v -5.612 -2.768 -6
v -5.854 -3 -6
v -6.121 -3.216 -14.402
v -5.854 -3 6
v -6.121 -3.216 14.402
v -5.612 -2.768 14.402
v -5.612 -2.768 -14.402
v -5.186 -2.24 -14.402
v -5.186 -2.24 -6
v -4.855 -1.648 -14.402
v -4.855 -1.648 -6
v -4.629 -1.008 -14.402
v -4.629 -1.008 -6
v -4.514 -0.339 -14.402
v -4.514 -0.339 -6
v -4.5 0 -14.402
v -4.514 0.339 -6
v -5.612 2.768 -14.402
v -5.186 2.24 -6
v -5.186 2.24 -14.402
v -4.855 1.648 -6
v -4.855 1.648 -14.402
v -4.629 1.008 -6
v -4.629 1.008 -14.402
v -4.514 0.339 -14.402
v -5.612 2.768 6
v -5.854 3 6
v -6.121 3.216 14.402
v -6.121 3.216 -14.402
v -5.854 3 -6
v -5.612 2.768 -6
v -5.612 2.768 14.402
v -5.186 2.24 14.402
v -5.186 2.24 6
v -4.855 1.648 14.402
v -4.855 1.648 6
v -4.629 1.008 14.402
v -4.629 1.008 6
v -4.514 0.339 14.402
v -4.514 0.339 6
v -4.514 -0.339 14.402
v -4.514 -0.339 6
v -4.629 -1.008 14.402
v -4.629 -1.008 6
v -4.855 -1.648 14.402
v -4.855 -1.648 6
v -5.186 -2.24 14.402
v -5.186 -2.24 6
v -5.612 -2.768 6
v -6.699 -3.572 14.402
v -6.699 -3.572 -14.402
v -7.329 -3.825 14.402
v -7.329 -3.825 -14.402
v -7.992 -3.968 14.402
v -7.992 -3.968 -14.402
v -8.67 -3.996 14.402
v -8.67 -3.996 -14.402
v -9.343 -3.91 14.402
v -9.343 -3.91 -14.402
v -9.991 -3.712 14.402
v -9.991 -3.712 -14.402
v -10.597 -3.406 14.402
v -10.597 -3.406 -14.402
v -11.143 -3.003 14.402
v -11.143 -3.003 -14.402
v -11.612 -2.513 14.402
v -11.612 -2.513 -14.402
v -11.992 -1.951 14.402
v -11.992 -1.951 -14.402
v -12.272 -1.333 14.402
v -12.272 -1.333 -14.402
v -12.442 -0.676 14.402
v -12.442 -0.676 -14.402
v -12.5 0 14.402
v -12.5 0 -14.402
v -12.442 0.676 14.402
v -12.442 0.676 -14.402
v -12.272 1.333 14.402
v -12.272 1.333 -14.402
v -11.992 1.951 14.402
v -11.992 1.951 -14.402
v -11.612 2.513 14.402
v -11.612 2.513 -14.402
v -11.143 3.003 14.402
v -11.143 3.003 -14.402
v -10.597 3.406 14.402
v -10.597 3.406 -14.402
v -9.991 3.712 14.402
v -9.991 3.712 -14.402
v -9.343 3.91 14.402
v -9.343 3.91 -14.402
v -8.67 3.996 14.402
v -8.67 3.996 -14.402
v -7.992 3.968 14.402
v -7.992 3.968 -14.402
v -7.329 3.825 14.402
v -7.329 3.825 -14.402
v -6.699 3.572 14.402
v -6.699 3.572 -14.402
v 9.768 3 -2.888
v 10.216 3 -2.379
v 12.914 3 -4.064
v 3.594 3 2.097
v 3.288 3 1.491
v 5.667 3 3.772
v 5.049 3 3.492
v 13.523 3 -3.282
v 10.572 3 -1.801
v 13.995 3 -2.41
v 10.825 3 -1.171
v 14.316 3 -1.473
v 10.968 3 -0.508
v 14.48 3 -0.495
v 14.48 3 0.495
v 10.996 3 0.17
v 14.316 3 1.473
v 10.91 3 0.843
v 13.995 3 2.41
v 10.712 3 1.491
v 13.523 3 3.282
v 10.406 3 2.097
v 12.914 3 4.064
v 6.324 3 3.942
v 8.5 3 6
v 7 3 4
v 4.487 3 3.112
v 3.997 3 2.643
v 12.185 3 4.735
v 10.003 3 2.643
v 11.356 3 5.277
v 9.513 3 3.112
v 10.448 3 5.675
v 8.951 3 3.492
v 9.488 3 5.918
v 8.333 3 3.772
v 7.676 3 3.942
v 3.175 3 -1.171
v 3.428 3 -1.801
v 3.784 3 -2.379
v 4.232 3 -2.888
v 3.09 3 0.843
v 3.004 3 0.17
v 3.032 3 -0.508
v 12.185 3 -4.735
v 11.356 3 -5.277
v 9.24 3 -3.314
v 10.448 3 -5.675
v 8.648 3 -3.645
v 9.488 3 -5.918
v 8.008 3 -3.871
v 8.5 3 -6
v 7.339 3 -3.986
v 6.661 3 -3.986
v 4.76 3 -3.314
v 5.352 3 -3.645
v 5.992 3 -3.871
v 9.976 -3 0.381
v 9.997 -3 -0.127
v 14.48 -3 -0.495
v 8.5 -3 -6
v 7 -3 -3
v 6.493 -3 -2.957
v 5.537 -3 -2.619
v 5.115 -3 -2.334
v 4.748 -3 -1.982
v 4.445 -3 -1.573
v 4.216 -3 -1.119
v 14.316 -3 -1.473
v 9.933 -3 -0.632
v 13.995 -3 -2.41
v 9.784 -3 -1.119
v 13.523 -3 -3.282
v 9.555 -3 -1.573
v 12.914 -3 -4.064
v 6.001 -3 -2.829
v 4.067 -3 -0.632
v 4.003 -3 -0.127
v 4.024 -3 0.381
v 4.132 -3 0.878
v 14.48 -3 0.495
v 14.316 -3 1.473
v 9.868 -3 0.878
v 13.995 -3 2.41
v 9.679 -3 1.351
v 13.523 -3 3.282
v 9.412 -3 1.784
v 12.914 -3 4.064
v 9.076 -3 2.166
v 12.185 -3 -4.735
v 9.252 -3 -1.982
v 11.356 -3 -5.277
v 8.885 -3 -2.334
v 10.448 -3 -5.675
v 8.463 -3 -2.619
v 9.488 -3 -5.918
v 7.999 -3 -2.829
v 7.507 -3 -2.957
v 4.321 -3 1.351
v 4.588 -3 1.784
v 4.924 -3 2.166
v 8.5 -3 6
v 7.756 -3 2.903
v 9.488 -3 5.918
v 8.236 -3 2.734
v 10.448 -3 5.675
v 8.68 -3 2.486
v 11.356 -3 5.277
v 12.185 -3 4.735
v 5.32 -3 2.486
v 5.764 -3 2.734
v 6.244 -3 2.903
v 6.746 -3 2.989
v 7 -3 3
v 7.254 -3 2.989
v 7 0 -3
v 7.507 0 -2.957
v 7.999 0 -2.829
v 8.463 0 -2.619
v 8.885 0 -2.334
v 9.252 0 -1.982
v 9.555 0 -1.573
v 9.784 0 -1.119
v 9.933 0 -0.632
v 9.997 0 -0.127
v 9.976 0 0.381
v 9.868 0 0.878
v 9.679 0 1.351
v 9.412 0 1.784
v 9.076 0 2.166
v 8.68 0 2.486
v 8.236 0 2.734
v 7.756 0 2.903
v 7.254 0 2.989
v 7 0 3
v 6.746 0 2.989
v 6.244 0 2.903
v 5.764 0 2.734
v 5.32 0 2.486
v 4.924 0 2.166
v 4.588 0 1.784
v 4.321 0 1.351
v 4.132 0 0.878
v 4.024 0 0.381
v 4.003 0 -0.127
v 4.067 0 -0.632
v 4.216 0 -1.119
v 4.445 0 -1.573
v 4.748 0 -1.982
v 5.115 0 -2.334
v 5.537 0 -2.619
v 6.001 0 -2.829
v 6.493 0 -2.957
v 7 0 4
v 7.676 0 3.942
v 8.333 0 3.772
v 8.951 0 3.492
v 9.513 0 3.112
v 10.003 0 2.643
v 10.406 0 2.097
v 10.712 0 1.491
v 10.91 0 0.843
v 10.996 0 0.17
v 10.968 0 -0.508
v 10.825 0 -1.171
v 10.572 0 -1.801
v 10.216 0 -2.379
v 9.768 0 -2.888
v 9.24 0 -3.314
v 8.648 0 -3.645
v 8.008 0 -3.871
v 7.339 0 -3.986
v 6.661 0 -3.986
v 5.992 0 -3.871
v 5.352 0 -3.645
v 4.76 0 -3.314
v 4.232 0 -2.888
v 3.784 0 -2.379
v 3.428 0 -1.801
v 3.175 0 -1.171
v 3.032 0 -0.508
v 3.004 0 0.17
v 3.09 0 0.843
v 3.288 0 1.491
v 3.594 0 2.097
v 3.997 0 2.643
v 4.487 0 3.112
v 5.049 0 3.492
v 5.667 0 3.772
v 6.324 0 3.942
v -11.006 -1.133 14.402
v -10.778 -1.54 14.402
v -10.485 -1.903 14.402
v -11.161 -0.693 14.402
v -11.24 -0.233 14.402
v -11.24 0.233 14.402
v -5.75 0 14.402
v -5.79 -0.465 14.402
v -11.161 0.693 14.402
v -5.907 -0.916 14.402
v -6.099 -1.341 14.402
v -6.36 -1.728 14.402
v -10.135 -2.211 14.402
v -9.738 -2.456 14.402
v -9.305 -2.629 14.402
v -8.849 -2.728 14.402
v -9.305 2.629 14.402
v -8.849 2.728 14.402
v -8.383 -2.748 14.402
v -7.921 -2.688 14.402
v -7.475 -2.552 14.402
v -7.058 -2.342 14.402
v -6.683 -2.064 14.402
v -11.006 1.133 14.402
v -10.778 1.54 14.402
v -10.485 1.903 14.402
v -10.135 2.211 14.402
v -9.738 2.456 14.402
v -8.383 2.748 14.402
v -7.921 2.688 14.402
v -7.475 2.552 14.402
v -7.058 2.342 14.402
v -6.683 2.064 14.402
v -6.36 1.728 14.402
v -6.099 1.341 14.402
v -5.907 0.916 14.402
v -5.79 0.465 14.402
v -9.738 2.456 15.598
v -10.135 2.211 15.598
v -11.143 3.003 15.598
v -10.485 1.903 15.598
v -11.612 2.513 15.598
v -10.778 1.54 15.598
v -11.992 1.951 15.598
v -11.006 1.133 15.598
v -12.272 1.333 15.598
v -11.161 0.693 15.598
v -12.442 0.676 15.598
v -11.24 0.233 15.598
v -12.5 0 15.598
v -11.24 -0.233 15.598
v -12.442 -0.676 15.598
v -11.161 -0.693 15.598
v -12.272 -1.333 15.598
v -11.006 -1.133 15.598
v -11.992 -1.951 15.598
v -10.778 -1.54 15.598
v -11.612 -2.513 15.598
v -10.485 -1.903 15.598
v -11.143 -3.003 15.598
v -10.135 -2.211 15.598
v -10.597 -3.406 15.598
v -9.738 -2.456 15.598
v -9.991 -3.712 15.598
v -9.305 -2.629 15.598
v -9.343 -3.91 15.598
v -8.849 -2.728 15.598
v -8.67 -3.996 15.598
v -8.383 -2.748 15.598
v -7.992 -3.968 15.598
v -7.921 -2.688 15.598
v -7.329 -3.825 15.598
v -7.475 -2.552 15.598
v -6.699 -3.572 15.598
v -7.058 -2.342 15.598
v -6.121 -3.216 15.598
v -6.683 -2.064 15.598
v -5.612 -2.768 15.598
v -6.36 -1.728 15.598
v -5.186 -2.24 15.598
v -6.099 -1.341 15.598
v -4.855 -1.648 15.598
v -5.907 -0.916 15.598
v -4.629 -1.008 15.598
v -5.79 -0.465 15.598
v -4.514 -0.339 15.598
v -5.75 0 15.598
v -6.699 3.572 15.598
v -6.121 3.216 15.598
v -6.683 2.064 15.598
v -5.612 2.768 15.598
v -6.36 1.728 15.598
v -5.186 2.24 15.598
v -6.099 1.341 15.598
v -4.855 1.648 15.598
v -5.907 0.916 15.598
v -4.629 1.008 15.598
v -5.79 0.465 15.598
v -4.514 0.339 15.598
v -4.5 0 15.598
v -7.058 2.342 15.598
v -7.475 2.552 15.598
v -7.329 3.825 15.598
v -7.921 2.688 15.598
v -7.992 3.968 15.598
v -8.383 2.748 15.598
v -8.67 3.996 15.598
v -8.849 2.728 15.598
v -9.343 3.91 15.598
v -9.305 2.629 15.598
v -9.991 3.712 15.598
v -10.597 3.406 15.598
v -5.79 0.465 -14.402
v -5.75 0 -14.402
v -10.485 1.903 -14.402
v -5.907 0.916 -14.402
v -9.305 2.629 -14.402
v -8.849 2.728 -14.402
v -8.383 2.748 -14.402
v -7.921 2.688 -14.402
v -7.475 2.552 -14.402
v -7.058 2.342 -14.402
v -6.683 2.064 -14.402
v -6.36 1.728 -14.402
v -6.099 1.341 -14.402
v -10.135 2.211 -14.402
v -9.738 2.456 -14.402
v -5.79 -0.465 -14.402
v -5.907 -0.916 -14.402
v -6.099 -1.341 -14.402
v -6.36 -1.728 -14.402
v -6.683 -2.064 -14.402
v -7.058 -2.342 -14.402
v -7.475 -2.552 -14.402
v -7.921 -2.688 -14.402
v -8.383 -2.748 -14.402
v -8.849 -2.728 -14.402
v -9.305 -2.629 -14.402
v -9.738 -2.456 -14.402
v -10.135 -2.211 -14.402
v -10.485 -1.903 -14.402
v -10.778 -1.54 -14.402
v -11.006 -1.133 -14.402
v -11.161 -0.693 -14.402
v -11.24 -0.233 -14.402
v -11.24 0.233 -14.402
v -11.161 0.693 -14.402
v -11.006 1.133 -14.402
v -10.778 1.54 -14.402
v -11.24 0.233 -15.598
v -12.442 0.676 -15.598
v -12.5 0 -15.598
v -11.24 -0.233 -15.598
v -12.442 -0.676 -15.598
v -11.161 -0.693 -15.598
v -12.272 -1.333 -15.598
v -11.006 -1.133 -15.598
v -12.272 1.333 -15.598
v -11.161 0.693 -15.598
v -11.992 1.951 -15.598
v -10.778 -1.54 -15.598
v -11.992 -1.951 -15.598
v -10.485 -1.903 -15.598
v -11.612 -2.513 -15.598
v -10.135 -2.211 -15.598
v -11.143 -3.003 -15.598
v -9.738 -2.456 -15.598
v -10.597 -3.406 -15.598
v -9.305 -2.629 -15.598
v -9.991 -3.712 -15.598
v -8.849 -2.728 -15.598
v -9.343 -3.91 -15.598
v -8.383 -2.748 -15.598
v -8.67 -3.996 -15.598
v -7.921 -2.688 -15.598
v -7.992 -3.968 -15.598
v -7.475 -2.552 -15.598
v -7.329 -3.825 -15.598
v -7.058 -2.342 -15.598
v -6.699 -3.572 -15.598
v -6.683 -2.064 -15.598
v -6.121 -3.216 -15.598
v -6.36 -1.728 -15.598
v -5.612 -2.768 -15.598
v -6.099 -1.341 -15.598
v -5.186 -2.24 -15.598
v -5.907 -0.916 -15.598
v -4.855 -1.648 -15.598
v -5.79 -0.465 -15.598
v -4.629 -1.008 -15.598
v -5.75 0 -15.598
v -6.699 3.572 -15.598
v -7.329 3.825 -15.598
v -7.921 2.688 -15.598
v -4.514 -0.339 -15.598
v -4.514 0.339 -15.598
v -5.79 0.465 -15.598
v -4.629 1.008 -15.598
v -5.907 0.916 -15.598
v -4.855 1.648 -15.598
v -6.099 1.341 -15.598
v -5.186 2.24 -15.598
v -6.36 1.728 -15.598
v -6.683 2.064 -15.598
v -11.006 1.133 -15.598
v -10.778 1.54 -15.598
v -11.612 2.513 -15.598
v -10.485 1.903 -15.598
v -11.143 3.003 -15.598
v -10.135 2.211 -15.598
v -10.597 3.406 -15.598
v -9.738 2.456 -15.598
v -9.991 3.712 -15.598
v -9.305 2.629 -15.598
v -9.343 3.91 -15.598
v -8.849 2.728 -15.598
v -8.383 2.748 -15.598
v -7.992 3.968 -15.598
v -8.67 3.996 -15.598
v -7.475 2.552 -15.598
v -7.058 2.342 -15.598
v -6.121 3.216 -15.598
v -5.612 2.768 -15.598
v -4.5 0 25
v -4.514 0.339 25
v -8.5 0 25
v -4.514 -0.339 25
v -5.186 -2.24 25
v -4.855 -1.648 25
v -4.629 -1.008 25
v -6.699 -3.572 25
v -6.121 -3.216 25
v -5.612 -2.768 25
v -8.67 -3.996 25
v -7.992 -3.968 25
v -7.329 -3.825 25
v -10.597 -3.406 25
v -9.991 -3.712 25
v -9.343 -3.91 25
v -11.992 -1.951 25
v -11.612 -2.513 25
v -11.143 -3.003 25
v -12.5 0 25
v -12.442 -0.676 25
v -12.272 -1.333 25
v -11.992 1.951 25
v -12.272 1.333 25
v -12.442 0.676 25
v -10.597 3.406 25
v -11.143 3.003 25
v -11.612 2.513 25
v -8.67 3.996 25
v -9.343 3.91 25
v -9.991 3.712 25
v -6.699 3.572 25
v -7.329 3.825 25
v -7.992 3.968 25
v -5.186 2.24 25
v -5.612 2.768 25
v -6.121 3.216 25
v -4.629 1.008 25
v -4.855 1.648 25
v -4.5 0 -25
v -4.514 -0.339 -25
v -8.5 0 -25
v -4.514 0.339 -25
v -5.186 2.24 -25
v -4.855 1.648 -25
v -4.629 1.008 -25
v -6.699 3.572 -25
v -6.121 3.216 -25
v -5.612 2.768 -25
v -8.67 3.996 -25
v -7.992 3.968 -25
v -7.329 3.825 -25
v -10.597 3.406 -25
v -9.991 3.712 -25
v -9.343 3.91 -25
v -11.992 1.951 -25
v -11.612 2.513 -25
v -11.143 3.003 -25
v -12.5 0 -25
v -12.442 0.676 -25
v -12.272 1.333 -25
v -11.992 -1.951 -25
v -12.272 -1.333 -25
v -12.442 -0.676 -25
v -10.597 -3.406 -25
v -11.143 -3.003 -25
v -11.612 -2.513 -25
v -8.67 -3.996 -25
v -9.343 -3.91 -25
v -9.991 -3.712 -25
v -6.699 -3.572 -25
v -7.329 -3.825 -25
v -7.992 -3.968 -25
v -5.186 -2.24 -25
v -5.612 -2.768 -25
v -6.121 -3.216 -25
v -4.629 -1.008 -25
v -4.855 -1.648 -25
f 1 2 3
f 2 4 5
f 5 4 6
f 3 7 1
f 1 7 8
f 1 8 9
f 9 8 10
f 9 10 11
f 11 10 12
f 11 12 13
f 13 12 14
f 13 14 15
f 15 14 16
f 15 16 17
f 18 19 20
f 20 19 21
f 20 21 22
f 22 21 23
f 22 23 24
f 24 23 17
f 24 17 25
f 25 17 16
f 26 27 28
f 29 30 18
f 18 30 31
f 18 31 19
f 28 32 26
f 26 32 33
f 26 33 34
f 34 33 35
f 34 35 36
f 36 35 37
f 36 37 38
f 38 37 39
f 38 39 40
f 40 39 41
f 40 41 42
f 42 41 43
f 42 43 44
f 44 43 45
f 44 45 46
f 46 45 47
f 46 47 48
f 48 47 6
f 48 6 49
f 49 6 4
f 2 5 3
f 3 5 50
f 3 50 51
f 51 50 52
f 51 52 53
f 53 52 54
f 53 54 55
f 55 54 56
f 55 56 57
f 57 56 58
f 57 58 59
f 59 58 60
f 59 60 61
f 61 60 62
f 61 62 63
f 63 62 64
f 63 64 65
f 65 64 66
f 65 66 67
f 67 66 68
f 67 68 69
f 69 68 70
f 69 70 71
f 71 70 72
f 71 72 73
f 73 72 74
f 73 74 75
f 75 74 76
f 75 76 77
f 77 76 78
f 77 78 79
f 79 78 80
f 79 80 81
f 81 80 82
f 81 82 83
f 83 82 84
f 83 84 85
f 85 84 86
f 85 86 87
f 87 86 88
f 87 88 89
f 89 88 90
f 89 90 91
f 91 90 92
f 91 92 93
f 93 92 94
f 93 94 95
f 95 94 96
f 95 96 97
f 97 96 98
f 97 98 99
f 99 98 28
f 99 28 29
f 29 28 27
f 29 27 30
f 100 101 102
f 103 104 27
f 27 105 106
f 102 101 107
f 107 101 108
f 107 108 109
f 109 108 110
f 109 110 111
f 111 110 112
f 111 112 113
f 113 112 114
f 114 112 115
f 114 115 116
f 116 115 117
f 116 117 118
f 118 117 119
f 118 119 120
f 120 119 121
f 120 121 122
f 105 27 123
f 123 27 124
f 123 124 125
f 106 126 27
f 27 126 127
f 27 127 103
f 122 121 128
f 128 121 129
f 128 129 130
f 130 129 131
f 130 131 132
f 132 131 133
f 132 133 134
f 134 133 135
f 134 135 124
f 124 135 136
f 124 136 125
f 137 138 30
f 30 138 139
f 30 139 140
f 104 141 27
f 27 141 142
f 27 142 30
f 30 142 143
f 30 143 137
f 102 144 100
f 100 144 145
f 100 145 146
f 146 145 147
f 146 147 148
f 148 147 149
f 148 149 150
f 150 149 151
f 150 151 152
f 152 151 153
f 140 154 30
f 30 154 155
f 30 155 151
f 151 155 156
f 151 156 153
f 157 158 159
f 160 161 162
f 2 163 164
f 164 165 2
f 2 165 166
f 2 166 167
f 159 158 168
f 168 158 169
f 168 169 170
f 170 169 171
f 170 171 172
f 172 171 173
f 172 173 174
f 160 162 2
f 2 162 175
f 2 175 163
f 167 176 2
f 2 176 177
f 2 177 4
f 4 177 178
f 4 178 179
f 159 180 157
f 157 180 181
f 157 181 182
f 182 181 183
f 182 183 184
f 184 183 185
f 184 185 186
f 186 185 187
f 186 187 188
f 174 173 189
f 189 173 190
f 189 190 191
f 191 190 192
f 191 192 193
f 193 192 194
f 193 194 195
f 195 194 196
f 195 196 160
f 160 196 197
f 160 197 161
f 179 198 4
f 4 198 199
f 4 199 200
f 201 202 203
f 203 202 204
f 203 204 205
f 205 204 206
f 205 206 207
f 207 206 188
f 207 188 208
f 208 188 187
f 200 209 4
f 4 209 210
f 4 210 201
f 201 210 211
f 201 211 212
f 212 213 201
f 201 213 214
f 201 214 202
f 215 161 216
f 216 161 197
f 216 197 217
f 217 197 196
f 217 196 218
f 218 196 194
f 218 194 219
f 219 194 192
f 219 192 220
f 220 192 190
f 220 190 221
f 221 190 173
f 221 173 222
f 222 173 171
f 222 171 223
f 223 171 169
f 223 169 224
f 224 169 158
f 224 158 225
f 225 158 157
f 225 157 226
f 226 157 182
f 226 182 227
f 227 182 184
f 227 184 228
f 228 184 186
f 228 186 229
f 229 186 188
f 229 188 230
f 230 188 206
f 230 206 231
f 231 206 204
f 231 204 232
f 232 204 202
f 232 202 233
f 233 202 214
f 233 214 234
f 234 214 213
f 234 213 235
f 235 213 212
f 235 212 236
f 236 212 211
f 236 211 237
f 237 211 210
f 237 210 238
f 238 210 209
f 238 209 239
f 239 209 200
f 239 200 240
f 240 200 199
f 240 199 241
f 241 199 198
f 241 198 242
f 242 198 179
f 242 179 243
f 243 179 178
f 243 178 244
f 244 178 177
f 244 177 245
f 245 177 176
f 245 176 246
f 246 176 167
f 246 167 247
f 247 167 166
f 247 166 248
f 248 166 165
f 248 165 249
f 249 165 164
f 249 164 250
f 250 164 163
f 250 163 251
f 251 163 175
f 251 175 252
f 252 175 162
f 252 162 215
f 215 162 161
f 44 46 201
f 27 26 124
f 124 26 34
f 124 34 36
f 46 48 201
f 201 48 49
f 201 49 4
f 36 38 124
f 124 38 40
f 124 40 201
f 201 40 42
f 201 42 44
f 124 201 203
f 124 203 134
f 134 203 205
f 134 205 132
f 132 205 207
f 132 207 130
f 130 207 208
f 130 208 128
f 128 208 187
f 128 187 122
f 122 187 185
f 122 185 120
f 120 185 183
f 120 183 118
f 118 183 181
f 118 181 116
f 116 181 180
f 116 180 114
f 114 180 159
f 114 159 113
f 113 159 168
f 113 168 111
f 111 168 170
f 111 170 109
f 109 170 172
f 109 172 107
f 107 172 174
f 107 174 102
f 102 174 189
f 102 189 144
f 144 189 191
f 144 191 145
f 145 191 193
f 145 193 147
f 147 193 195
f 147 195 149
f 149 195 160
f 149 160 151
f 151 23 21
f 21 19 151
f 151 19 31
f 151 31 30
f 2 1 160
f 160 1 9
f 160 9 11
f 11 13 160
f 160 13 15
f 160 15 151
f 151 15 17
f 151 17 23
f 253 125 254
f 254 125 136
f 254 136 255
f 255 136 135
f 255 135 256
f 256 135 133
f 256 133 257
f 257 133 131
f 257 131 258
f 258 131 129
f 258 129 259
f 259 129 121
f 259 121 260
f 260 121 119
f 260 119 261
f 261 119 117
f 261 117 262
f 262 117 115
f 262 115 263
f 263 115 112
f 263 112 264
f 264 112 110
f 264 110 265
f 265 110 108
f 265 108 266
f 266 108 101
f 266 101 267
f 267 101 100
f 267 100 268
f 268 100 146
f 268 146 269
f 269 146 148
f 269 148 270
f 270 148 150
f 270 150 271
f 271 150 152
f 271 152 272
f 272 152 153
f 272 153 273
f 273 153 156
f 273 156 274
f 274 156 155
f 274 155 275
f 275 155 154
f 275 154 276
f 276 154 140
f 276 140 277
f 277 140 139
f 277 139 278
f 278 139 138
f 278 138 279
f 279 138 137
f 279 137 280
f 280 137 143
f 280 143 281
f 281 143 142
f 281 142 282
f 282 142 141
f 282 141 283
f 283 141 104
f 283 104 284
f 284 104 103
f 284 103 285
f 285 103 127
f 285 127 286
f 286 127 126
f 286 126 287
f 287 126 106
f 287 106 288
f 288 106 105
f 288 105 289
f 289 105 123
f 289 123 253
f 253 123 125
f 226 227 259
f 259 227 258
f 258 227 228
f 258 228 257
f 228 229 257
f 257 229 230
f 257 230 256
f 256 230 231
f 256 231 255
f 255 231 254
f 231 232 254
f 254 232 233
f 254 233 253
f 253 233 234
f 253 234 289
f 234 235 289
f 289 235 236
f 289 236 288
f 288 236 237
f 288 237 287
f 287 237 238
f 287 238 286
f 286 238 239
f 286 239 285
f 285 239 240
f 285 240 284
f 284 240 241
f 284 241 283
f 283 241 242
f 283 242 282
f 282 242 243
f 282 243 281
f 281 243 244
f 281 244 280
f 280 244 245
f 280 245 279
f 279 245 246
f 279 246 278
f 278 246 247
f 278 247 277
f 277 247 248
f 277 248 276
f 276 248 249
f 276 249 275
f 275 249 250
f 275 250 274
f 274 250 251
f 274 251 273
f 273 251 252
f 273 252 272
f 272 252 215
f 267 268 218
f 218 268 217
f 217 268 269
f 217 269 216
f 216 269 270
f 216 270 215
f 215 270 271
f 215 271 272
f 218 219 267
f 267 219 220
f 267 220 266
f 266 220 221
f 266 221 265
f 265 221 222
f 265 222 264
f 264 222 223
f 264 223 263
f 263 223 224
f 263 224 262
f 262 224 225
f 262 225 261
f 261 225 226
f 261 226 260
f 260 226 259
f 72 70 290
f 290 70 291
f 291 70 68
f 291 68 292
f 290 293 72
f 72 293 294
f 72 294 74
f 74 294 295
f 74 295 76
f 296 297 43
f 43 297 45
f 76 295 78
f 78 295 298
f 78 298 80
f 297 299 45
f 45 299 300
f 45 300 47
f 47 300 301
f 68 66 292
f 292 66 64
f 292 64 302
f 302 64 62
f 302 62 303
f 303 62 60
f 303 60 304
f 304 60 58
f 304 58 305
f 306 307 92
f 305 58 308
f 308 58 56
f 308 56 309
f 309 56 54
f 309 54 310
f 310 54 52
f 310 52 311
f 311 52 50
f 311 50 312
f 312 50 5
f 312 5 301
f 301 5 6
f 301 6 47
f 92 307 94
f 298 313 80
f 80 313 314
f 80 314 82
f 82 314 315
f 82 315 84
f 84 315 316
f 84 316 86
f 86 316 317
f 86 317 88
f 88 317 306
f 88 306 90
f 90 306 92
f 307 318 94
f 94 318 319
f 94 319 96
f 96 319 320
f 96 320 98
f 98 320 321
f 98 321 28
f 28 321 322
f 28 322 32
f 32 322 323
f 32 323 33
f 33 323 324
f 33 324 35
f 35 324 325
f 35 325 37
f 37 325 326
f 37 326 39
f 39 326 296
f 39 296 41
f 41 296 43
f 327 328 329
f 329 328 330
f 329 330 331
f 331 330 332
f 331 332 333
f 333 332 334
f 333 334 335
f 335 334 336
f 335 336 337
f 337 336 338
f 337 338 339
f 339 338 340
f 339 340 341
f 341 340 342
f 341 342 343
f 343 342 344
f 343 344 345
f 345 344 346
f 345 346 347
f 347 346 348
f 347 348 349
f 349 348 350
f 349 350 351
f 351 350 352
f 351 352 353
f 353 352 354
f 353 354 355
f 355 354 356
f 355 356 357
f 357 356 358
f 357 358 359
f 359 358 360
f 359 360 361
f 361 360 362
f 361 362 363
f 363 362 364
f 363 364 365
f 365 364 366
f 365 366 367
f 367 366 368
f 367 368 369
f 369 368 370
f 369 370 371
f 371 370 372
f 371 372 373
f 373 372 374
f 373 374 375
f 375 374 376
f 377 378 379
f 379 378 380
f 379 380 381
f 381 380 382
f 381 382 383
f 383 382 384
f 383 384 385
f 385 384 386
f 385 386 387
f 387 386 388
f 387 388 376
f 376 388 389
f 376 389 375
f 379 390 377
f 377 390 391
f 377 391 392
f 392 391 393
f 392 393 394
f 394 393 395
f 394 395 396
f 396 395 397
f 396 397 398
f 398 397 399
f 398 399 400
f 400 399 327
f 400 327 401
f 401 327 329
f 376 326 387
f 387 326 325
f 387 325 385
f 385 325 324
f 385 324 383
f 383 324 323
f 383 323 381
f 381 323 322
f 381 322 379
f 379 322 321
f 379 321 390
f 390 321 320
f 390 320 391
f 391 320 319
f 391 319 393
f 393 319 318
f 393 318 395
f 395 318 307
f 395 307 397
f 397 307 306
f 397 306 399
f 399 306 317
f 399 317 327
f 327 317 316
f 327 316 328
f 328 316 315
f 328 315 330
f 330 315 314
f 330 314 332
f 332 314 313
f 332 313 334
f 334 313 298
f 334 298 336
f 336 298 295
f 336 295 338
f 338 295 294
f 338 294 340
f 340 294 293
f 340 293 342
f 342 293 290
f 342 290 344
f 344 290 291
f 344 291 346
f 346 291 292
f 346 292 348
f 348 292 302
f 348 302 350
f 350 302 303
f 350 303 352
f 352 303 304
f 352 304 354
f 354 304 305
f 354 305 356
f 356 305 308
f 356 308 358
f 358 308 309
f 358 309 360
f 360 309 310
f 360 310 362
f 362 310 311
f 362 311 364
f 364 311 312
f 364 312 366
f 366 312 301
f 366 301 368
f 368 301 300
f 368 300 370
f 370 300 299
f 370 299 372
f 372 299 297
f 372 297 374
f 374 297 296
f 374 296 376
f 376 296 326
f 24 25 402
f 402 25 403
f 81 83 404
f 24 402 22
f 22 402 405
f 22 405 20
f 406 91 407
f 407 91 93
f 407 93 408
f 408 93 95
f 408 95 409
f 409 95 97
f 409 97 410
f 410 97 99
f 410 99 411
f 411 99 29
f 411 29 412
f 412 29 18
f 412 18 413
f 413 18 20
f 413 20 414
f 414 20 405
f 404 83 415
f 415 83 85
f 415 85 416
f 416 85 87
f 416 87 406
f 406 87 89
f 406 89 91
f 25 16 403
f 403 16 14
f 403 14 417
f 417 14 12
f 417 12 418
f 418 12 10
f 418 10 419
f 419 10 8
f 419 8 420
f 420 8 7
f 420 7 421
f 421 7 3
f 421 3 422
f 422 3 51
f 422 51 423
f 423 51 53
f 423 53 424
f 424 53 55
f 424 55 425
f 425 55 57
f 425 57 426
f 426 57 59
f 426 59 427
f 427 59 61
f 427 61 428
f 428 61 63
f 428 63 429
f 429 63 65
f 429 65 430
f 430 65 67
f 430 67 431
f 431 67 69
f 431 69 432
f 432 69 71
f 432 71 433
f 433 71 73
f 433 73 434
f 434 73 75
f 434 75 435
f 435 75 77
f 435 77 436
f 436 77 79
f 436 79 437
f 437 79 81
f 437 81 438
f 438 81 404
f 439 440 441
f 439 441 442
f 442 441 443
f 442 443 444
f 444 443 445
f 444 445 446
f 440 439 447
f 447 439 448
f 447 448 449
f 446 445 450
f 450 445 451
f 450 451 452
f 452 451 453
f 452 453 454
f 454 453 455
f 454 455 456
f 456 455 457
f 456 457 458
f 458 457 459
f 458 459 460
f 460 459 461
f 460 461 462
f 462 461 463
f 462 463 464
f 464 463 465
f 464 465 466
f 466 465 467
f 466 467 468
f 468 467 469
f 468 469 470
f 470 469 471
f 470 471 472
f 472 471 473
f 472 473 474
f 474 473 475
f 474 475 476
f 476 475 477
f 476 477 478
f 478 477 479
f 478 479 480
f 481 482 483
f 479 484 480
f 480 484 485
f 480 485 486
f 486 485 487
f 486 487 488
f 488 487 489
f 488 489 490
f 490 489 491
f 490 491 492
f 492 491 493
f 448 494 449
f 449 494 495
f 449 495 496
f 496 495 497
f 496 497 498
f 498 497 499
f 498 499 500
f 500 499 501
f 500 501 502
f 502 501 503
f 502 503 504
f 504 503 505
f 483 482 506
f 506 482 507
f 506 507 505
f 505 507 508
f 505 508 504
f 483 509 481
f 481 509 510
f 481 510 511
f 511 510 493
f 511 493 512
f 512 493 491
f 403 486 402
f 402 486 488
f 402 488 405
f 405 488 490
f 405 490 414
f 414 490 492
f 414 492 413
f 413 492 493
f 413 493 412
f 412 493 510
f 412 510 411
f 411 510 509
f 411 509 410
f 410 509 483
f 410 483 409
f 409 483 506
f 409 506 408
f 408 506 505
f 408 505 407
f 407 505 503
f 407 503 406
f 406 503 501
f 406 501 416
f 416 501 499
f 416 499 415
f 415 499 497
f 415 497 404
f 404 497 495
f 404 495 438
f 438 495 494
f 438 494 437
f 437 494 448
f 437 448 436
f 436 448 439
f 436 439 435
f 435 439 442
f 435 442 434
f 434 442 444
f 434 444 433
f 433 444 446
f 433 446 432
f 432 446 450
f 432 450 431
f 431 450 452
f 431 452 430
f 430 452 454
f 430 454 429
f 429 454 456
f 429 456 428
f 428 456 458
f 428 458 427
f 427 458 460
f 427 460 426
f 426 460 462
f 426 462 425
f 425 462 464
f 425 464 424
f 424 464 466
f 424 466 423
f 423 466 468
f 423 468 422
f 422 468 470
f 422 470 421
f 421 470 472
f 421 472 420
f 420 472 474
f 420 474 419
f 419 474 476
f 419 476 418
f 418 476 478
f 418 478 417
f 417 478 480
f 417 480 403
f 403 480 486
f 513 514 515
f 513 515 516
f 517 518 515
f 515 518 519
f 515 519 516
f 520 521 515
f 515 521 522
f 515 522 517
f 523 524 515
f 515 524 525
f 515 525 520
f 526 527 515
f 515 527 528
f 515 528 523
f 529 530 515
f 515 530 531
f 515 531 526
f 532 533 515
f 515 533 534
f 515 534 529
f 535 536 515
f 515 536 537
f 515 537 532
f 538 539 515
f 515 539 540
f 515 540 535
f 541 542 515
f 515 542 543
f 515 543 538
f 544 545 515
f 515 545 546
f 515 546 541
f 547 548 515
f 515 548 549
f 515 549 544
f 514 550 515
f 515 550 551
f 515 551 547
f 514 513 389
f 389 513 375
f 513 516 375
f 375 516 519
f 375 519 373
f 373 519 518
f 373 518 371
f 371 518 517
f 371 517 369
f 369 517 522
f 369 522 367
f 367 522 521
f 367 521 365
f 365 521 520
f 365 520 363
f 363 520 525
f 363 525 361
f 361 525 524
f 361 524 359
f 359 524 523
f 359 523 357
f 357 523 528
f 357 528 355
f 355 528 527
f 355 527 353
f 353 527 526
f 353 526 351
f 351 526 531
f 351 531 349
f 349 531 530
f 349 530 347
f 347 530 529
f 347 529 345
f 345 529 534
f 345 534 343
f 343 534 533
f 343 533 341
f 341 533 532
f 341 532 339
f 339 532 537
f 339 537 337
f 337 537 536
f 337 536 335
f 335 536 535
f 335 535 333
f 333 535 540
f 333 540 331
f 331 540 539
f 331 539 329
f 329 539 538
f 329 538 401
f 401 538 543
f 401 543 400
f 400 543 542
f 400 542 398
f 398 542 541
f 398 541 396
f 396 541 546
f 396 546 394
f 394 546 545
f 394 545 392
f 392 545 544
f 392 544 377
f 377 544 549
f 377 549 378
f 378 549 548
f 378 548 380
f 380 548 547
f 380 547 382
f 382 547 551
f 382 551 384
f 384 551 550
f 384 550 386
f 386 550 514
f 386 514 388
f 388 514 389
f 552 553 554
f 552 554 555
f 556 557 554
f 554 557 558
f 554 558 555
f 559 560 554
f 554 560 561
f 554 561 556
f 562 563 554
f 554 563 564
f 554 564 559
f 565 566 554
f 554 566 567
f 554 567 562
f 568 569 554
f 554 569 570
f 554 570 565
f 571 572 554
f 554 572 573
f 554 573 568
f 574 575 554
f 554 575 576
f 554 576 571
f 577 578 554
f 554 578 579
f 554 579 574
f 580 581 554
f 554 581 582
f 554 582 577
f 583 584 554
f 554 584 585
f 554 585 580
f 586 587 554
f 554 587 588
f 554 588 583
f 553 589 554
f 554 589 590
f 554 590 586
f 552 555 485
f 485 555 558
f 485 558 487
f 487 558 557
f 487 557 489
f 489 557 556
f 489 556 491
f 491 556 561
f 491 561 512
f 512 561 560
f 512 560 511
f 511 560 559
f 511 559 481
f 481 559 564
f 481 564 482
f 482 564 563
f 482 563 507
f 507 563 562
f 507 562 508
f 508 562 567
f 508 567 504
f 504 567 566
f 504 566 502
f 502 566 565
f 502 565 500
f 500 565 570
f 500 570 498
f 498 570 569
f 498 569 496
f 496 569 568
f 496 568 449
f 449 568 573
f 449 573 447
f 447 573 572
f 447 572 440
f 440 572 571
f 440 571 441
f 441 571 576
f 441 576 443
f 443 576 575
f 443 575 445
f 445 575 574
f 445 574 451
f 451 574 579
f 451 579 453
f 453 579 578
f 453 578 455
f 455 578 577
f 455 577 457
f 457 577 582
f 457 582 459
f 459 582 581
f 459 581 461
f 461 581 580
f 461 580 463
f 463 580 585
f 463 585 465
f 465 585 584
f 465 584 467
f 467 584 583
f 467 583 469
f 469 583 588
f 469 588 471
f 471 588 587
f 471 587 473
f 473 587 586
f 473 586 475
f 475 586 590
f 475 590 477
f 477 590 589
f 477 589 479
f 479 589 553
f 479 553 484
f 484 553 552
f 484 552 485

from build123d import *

# Parameters (mm, degrees)
SKETCH3_R           = 3
BOSS_EXTRUDE1_DEPTH = 3
SKETCH4_R           = 4
CUT_EXTRUDE1_DEPTH  = 3
SKETCH6_R           = 4
BOSS_EXTRUDE2_DEPTH = 25
SKETCH7_W           = 2.5
SKETCH7_H           = 1.19510496


with BuildPart() as part:
    # Sketch3 → Boss-Extrude1 (new, symmetric)
    with BuildSketch(Plane(origin=(0, 0, 0), x_dir=(1, 0, 0), z_dir=(0, 1, 0))):
        with BuildLine():
            Line((8.5, -6), (-8.5, -6))
            Line((-8.5, -6), (-8.5, 6))
            Line((-8.5, 6), (8.5, 6))
            ThreePointArc((8.5, 6), (14.5, 0), (8.5, -6))
        make_face()
        with Locations(Location((7, 0, 0), (0, 0, 270))):
            Circle(SKETCH3_R, mode=Mode.SUBTRACT)
    extrude(amount=BOSS_EXTRUDE1_DEPTH, both=True)

    # Sketch4 → Cut-Extrude1 (cut)
    with BuildSketch(Plane(origin=(0, 3, 0), x_dir=(1, 0, 0), z_dir=(0, 1, 0))):
        with Locations(Location((7, 0, 0), (0, 0, 270))):
            Circle(SKETCH4_R)
    extrude(amount=-CUT_EXTRUDE1_DEPTH, mode=Mode.SUBTRACT)

    # Sketch6 → Boss-Extrude2 (add, symmetric)
    with BuildSketch(Plane.XY):
        with Locations((-8.5, 0)):
            Circle(SKETCH6_R)
    extrude(amount=BOSS_EXTRUDE2_DEPTH, both=True)

    # Sketch7 → Cut-Revolve1 (revolve, cut)
    with BuildSketch(Plane(origin=(0, 0, 0), x_dir=(1, 0, 0), z_dir=(0, 1, 0))):
        with Locations((-4.5, 15)):
            Rectangle(SKETCH7_W, SKETCH7_H)
        with Locations((-4.5, -15)):
            Rectangle(SKETCH7_W, SKETCH7_H)
    revolve(axis=Axis((-8.5, 0, 25), (0, 0, -1)), mode=Mode.SUBTRACT)


solid = part.part
